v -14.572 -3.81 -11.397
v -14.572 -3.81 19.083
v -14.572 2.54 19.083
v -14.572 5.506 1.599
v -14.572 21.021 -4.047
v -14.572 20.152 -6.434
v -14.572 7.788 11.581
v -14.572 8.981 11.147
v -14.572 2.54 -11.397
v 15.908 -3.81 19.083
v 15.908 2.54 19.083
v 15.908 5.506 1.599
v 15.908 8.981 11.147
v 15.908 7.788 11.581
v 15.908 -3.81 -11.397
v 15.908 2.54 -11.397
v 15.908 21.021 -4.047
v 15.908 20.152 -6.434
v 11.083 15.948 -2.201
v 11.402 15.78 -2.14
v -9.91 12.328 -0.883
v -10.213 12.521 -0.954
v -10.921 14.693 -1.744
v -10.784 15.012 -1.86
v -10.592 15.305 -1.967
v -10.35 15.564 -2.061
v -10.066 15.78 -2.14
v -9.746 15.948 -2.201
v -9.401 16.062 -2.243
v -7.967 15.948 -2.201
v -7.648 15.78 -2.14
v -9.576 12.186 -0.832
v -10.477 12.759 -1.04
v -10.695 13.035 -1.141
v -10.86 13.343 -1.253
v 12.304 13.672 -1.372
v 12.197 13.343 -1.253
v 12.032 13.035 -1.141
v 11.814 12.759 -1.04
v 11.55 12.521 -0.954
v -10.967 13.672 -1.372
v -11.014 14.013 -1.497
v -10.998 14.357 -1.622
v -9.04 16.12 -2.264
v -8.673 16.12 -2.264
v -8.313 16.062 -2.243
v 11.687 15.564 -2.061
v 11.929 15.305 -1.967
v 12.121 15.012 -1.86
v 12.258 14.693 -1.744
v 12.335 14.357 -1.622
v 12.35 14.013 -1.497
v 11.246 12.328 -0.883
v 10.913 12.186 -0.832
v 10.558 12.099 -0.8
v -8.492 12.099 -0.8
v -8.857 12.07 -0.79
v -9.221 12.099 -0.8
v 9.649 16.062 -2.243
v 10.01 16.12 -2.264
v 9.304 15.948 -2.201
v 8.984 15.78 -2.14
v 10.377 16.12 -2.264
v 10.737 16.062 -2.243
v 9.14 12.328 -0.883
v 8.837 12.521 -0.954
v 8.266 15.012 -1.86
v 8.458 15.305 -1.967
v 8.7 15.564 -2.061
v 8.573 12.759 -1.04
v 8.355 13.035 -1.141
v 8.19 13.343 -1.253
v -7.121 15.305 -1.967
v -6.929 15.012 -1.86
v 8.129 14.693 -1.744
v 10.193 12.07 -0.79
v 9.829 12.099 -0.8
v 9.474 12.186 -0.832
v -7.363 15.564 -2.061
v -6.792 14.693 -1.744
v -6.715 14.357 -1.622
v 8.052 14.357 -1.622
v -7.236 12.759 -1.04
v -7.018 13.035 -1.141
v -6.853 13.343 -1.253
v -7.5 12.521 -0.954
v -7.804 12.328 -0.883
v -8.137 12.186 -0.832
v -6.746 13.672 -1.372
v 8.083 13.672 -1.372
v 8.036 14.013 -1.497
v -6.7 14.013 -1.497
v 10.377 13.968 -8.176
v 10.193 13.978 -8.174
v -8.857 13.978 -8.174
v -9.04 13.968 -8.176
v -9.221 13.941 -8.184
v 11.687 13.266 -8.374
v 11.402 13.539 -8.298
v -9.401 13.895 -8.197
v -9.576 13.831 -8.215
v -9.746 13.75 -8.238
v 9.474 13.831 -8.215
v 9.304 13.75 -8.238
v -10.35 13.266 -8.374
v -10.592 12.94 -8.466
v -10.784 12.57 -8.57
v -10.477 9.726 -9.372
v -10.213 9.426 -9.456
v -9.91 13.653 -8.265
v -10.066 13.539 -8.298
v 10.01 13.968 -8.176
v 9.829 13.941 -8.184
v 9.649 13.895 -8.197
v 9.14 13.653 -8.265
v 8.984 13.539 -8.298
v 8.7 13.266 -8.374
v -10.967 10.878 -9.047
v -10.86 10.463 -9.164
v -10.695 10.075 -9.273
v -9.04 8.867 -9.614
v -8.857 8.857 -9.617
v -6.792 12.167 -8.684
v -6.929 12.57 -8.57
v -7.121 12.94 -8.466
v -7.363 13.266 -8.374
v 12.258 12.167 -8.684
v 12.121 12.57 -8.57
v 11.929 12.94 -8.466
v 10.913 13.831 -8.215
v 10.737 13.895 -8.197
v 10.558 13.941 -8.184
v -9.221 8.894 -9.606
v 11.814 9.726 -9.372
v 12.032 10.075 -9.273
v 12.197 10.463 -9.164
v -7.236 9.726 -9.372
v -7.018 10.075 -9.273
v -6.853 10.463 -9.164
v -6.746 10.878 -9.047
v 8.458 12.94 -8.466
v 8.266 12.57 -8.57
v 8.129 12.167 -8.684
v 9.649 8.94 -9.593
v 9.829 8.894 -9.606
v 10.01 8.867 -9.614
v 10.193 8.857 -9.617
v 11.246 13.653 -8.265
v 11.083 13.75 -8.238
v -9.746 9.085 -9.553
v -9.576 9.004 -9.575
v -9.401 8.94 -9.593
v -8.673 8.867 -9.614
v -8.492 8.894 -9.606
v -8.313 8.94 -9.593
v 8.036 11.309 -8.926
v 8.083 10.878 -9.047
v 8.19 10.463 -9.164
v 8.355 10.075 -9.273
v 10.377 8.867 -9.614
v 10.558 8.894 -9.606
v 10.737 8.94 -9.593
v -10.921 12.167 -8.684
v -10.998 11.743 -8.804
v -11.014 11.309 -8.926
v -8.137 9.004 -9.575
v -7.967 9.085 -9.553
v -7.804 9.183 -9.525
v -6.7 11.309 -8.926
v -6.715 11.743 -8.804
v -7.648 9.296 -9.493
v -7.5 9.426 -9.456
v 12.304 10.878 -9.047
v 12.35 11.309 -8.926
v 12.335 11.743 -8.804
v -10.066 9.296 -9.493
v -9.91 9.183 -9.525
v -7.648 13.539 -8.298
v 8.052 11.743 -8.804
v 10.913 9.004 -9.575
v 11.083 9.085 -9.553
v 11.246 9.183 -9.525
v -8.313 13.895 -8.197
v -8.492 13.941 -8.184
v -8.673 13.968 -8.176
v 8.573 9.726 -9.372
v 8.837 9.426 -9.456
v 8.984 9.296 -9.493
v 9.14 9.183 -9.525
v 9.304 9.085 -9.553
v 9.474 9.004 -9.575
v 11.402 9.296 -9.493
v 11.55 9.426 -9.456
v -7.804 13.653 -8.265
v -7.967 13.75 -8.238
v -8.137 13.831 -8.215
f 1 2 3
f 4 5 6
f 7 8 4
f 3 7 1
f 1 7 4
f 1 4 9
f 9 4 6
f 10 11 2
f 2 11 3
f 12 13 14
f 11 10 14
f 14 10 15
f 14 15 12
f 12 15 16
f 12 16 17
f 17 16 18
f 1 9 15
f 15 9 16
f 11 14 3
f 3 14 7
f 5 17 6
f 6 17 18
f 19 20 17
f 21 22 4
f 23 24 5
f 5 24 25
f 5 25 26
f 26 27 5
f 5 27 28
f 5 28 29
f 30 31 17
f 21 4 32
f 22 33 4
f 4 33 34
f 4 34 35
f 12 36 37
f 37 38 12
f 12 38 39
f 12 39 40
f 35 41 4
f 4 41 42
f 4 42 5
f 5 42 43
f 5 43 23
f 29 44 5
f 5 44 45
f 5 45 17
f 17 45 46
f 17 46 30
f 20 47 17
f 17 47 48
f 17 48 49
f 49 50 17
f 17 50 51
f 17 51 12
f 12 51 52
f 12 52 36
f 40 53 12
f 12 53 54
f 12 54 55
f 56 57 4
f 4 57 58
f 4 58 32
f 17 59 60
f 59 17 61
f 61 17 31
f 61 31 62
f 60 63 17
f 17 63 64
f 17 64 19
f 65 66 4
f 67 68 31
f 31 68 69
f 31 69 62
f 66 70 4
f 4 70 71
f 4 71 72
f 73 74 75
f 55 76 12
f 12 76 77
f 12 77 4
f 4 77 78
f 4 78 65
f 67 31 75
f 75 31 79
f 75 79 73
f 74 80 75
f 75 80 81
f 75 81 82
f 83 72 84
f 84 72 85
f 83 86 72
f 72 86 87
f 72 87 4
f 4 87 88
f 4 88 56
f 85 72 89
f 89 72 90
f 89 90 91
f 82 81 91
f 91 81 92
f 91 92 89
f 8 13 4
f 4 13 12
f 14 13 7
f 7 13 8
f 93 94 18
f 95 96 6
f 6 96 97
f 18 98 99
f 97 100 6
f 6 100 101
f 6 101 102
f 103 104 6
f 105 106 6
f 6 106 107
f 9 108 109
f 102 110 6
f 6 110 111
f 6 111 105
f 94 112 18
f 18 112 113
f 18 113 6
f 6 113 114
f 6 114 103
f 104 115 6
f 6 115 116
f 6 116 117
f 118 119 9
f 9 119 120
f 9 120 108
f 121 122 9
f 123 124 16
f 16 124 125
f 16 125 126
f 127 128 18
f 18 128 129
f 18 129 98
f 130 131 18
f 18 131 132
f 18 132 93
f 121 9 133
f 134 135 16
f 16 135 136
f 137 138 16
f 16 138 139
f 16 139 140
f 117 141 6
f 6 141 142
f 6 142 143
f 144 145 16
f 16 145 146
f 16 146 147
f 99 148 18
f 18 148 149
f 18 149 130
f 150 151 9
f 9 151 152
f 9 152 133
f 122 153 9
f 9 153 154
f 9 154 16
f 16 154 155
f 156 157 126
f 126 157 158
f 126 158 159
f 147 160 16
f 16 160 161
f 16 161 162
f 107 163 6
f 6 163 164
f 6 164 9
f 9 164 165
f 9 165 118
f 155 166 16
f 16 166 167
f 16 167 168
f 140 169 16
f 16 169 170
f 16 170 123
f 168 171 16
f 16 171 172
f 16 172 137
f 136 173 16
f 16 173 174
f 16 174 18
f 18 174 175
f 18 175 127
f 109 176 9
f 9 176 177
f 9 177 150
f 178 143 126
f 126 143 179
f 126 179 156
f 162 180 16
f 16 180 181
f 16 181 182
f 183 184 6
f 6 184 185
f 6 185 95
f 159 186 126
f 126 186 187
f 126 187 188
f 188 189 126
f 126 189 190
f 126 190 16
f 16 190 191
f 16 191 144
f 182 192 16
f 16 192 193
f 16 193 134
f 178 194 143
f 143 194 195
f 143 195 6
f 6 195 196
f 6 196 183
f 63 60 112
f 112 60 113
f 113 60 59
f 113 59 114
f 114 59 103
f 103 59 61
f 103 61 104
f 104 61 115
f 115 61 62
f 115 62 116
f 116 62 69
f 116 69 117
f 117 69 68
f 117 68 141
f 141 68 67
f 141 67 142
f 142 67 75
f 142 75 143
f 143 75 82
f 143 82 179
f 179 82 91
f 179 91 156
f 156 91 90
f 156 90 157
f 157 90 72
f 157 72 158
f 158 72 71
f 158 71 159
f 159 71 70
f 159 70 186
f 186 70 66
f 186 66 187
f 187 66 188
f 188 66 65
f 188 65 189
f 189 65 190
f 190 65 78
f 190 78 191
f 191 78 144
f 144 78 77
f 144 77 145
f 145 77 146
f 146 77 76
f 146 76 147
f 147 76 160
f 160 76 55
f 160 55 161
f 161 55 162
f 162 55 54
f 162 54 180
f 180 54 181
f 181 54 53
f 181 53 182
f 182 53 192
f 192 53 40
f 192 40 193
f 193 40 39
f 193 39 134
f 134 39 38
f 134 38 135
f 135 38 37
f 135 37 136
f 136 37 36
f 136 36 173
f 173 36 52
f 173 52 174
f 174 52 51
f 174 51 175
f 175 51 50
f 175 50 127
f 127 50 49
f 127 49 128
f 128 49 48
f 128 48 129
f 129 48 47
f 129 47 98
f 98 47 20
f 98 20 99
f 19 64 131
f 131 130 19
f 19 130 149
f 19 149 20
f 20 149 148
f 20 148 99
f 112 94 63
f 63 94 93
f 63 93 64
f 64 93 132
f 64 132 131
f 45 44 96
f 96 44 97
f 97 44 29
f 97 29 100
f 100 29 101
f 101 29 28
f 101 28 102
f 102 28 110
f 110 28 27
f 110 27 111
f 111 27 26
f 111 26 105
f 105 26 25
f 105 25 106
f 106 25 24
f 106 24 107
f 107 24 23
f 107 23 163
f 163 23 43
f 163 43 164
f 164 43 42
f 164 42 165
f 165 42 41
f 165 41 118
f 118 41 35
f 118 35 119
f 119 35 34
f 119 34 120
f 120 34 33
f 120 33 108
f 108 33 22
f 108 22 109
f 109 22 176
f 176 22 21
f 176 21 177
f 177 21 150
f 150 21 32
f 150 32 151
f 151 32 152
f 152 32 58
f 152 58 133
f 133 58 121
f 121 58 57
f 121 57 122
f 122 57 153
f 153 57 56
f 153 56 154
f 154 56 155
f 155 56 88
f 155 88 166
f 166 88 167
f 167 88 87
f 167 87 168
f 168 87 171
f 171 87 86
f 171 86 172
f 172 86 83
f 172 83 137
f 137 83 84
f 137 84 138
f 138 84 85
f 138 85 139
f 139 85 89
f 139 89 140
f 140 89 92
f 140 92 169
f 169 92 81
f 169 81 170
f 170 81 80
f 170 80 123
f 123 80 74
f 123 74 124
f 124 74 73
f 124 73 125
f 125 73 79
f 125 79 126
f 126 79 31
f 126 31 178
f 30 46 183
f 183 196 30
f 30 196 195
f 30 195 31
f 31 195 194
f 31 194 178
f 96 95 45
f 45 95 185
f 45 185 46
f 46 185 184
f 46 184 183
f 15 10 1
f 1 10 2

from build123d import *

# Parameters (mm, degrees)
SKETCH1_W                = 30.48
SKETCH1_H                = 16.51
BOSS_EXTRUDE1_DEPTH      = 2.54
BOSS_EXTRUDE2_DEPTH      = 10.16
BOSS_EXTRUDE2_DEPTH_BACK = 2.54
SKETCH3_W                = 30.48
SKETCH3_H                = 1.27
SKETCH4_W                = 30.48
SKETCH4_H                = 30.48
BOSS_EXTRUDE3_DEPTH      = 2.54
BODY_MOVE_COPY3_ANGLE    = 70
LOFT2_START              = -14.571578947
LOFT2_DEPTH              = 30.48
SKETCH5_R                = 2.159
CUT_EXTRUDE1_DEPTH       = 31.007586006
SKETCH6_W                = 30.48
SKETCH6_H                = 30.48
BOSS_EXTRUDE4_DEPTH      = 3.81


# Read off the part's stored shape, not the designer's step: Loft2
with BuildPart() as part:
    # Sketch1 → Boss-Extrude1 (new body)
    with BuildSketch(Plane(origin=(0, 0, 0), x_dir=(1, 0, 0), z_dir=(0, 1, 0))):
        with Locations((0.668421053, -1.938421053)):
            Rectangle(SKETCH1_W, SKETCH1_H)
    extrude(amount=BOSS_EXTRUDE1_DEPTH)

    # Sketch3 → Boss-Extrude2 (add, two sides: drawn at the far end of the back side and taken through both)
    with BuildSketch(Plane(origin=(0, 2.54, 0), x_dir=(1, 0, 0), z_dir=(0, 1, 0)).offset(-BOSS_EXTRUDE2_DEPTH_BACK)):
        with Locations((0.668421053, -10.828421053)):
            Rectangle(SKETCH3_W, SKETCH3_H)
    extrude(amount=BOSS_EXTRUDE2_DEPTH + BOSS_EXTRUDE2_DEPTH_BACK)


with BuildPart() as part_1:
    # Body-Move/Copy1: moved
    add(part.part.moved(Location((0, 7.62, 0))))


with BuildPart() as body_2:
    # Sketch4 → Boss-Extrude3 (new body)
    with BuildSketch(Plane(origin=(0, 0, 0), x_dir=(1, 0, 0), z_dir=(0, 1, 0))):
        with Locations((0.668421053, -3.843421053)):
            Rectangle(SKETCH4_W, SKETCH4_H)
    extrude(amount=BOSS_EXTRUDE3_DEPTH)


with BuildPart() as part_2:
    # Body-Move/Copy3: moved
    add(part_1.part.rotate(Axis((0, 13.97, 2.573421053), (1, 0, 0)), BODY_MOVE_COPY3_ANGLE))


    add(body_2.part)  # loft1 joins it to this body
    # loft from a face of the part (loft1)
    loft([part_2.faces().sort_by_distance((0.668421053, 5.616132601, 5.613980127))[0], part_2.faces().sort_by_distance((0.668421053, 2.54, 3.843421053))[0]])

    # Loft2 outline → Loft2 (add)
    with BuildSketch(Plane.YZ.offset(LOFT2_START)):
        Polygon((3.444304691, -0.353068015), (2.54, -11.396578947), (20.152039489, -6.434186164), align=None)
    extrude(amount=LOFT2_DEPTH)

    # Sketch5 → Cut-Extrude1 (cut, through all)
    with BuildSketch(Plane(origin=(0, 1.158164402, 3.182030543), x_dir=(1, 0, 0), z_dir=(0, 0.3420201433256677, 0.9396926207859089))):
        with Locations(Location((-8.856578947, 13.771344075, 0), (0, 0, 270))):
            Circle(SKETCH5_R)
        with Locations(Location((10.193421053, 13.771344075, 0), (0, 0, 270))):
            Circle(SKETCH5_R)
    extrude(amount=-CUT_EXTRUDE1_DEPTH, mode=Mode.SUBTRACT)

    # Sketch6 → Boss-Extrude4 (add)
    with BuildSketch(Plane.XZ):
        with Locations((0.668421053, 3.843421053)):
            Rectangle(SKETCH6_W, SKETCH6_H)
    extrude(amount=BOSS_EXTRUDE4_DEPTH)


solid = part_2.part
